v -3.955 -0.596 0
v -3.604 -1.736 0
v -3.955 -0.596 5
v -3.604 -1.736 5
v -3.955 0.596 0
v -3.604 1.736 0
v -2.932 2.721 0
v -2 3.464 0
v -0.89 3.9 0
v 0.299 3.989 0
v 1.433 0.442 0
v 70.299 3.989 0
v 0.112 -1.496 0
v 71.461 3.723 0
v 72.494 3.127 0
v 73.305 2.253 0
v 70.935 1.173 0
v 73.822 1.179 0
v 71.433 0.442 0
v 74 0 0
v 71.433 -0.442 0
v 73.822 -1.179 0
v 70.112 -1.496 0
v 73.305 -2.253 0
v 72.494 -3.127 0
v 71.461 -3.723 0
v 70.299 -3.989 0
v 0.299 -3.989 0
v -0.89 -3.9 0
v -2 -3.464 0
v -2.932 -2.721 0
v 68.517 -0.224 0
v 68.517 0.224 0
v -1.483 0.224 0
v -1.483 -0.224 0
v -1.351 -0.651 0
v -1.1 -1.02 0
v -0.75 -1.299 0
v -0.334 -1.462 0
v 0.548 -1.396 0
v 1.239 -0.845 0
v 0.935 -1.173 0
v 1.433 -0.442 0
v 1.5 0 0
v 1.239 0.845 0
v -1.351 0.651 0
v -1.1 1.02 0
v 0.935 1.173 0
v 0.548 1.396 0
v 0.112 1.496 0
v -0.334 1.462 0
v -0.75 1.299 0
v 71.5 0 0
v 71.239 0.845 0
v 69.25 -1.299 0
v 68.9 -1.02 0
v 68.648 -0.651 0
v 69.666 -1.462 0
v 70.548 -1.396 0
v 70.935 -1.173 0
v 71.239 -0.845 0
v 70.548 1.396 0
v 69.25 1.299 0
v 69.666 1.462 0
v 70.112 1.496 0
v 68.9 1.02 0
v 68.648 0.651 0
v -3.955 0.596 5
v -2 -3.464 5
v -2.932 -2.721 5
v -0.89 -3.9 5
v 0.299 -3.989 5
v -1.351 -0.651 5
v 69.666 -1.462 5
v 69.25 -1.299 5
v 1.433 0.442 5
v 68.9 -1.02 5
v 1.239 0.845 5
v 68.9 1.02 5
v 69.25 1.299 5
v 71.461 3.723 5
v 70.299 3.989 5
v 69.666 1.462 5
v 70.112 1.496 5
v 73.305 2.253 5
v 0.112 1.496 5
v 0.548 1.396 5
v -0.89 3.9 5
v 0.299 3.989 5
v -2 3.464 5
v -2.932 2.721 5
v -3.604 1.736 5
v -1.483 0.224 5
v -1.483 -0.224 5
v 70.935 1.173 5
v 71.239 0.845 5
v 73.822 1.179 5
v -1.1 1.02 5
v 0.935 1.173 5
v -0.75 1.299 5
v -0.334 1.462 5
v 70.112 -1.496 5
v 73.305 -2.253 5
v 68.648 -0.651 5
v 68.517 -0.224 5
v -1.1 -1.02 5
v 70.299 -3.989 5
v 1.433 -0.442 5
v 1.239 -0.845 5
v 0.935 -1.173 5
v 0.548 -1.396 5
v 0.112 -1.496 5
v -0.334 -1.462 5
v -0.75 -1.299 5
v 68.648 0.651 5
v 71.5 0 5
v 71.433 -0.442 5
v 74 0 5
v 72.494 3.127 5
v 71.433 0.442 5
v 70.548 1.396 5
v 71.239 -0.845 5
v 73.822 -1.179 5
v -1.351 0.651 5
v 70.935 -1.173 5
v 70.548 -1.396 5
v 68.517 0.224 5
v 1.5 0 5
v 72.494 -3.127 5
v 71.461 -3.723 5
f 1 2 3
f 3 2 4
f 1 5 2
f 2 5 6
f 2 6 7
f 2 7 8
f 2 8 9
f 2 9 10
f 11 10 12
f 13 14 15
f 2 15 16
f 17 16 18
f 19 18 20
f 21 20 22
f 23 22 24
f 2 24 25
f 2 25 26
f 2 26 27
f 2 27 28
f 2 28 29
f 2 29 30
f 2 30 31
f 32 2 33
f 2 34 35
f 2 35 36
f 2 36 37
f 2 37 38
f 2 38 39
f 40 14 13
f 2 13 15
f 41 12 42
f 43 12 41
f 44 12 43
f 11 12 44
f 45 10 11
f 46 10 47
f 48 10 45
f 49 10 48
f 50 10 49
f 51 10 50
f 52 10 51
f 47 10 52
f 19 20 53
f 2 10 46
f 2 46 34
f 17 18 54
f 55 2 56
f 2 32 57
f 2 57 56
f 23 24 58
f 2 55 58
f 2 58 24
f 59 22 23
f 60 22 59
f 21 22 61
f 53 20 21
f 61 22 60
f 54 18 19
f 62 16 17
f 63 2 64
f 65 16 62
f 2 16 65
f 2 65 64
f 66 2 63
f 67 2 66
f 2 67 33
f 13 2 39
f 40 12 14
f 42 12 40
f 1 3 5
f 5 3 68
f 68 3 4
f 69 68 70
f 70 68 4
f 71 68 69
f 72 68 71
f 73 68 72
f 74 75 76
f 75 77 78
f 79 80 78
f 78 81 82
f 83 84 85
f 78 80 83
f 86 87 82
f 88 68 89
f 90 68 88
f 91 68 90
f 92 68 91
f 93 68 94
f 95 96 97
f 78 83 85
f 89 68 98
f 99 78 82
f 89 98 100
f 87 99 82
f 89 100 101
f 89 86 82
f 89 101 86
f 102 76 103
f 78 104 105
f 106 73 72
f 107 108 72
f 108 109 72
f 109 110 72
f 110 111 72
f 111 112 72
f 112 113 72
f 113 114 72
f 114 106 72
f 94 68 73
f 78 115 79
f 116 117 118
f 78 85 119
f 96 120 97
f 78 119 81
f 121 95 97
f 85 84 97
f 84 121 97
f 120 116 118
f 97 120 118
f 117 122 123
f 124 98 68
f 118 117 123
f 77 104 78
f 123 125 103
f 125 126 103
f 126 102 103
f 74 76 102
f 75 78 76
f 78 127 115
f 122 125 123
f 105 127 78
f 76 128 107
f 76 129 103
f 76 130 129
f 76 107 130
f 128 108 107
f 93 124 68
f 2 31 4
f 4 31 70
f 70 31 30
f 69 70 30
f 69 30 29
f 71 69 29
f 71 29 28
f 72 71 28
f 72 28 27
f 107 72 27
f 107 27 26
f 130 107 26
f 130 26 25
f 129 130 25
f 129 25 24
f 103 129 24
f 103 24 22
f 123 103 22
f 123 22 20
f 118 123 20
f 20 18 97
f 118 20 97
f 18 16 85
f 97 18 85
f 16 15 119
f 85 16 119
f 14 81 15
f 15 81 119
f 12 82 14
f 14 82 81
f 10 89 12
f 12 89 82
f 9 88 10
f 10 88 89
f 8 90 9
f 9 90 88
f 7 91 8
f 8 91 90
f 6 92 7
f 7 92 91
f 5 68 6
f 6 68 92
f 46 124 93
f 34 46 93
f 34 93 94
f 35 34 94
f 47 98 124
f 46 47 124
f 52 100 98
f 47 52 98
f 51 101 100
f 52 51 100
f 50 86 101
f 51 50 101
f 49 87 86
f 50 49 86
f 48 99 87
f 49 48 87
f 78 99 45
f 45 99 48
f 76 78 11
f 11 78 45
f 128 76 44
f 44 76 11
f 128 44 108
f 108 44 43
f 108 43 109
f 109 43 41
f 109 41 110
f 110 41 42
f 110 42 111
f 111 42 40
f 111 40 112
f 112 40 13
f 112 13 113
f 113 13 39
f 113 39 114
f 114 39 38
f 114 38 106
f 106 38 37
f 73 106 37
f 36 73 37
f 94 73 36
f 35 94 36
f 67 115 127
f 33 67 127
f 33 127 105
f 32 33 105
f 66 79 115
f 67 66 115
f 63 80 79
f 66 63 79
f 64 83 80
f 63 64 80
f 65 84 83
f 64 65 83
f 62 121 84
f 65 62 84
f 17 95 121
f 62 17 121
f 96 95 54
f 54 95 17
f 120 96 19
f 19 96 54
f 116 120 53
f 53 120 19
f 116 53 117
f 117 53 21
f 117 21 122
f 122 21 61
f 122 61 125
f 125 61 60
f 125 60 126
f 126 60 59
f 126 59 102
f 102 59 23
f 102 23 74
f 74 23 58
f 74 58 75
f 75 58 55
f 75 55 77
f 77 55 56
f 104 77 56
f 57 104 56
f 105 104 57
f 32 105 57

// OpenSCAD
$fn = 21;
difference(){
	union(){
		hull(){
			translate([0,0,0])cylinder(r = 4, h = 5);
			translate([70,0,0])cylinder(r = 4, h = 5);
		}
	}
	translate([0,0,-1])cylinder(r = 1.5, h = 7);
	translate([70,0,-1])cylinder(r = 1.5, h = 7);

}
